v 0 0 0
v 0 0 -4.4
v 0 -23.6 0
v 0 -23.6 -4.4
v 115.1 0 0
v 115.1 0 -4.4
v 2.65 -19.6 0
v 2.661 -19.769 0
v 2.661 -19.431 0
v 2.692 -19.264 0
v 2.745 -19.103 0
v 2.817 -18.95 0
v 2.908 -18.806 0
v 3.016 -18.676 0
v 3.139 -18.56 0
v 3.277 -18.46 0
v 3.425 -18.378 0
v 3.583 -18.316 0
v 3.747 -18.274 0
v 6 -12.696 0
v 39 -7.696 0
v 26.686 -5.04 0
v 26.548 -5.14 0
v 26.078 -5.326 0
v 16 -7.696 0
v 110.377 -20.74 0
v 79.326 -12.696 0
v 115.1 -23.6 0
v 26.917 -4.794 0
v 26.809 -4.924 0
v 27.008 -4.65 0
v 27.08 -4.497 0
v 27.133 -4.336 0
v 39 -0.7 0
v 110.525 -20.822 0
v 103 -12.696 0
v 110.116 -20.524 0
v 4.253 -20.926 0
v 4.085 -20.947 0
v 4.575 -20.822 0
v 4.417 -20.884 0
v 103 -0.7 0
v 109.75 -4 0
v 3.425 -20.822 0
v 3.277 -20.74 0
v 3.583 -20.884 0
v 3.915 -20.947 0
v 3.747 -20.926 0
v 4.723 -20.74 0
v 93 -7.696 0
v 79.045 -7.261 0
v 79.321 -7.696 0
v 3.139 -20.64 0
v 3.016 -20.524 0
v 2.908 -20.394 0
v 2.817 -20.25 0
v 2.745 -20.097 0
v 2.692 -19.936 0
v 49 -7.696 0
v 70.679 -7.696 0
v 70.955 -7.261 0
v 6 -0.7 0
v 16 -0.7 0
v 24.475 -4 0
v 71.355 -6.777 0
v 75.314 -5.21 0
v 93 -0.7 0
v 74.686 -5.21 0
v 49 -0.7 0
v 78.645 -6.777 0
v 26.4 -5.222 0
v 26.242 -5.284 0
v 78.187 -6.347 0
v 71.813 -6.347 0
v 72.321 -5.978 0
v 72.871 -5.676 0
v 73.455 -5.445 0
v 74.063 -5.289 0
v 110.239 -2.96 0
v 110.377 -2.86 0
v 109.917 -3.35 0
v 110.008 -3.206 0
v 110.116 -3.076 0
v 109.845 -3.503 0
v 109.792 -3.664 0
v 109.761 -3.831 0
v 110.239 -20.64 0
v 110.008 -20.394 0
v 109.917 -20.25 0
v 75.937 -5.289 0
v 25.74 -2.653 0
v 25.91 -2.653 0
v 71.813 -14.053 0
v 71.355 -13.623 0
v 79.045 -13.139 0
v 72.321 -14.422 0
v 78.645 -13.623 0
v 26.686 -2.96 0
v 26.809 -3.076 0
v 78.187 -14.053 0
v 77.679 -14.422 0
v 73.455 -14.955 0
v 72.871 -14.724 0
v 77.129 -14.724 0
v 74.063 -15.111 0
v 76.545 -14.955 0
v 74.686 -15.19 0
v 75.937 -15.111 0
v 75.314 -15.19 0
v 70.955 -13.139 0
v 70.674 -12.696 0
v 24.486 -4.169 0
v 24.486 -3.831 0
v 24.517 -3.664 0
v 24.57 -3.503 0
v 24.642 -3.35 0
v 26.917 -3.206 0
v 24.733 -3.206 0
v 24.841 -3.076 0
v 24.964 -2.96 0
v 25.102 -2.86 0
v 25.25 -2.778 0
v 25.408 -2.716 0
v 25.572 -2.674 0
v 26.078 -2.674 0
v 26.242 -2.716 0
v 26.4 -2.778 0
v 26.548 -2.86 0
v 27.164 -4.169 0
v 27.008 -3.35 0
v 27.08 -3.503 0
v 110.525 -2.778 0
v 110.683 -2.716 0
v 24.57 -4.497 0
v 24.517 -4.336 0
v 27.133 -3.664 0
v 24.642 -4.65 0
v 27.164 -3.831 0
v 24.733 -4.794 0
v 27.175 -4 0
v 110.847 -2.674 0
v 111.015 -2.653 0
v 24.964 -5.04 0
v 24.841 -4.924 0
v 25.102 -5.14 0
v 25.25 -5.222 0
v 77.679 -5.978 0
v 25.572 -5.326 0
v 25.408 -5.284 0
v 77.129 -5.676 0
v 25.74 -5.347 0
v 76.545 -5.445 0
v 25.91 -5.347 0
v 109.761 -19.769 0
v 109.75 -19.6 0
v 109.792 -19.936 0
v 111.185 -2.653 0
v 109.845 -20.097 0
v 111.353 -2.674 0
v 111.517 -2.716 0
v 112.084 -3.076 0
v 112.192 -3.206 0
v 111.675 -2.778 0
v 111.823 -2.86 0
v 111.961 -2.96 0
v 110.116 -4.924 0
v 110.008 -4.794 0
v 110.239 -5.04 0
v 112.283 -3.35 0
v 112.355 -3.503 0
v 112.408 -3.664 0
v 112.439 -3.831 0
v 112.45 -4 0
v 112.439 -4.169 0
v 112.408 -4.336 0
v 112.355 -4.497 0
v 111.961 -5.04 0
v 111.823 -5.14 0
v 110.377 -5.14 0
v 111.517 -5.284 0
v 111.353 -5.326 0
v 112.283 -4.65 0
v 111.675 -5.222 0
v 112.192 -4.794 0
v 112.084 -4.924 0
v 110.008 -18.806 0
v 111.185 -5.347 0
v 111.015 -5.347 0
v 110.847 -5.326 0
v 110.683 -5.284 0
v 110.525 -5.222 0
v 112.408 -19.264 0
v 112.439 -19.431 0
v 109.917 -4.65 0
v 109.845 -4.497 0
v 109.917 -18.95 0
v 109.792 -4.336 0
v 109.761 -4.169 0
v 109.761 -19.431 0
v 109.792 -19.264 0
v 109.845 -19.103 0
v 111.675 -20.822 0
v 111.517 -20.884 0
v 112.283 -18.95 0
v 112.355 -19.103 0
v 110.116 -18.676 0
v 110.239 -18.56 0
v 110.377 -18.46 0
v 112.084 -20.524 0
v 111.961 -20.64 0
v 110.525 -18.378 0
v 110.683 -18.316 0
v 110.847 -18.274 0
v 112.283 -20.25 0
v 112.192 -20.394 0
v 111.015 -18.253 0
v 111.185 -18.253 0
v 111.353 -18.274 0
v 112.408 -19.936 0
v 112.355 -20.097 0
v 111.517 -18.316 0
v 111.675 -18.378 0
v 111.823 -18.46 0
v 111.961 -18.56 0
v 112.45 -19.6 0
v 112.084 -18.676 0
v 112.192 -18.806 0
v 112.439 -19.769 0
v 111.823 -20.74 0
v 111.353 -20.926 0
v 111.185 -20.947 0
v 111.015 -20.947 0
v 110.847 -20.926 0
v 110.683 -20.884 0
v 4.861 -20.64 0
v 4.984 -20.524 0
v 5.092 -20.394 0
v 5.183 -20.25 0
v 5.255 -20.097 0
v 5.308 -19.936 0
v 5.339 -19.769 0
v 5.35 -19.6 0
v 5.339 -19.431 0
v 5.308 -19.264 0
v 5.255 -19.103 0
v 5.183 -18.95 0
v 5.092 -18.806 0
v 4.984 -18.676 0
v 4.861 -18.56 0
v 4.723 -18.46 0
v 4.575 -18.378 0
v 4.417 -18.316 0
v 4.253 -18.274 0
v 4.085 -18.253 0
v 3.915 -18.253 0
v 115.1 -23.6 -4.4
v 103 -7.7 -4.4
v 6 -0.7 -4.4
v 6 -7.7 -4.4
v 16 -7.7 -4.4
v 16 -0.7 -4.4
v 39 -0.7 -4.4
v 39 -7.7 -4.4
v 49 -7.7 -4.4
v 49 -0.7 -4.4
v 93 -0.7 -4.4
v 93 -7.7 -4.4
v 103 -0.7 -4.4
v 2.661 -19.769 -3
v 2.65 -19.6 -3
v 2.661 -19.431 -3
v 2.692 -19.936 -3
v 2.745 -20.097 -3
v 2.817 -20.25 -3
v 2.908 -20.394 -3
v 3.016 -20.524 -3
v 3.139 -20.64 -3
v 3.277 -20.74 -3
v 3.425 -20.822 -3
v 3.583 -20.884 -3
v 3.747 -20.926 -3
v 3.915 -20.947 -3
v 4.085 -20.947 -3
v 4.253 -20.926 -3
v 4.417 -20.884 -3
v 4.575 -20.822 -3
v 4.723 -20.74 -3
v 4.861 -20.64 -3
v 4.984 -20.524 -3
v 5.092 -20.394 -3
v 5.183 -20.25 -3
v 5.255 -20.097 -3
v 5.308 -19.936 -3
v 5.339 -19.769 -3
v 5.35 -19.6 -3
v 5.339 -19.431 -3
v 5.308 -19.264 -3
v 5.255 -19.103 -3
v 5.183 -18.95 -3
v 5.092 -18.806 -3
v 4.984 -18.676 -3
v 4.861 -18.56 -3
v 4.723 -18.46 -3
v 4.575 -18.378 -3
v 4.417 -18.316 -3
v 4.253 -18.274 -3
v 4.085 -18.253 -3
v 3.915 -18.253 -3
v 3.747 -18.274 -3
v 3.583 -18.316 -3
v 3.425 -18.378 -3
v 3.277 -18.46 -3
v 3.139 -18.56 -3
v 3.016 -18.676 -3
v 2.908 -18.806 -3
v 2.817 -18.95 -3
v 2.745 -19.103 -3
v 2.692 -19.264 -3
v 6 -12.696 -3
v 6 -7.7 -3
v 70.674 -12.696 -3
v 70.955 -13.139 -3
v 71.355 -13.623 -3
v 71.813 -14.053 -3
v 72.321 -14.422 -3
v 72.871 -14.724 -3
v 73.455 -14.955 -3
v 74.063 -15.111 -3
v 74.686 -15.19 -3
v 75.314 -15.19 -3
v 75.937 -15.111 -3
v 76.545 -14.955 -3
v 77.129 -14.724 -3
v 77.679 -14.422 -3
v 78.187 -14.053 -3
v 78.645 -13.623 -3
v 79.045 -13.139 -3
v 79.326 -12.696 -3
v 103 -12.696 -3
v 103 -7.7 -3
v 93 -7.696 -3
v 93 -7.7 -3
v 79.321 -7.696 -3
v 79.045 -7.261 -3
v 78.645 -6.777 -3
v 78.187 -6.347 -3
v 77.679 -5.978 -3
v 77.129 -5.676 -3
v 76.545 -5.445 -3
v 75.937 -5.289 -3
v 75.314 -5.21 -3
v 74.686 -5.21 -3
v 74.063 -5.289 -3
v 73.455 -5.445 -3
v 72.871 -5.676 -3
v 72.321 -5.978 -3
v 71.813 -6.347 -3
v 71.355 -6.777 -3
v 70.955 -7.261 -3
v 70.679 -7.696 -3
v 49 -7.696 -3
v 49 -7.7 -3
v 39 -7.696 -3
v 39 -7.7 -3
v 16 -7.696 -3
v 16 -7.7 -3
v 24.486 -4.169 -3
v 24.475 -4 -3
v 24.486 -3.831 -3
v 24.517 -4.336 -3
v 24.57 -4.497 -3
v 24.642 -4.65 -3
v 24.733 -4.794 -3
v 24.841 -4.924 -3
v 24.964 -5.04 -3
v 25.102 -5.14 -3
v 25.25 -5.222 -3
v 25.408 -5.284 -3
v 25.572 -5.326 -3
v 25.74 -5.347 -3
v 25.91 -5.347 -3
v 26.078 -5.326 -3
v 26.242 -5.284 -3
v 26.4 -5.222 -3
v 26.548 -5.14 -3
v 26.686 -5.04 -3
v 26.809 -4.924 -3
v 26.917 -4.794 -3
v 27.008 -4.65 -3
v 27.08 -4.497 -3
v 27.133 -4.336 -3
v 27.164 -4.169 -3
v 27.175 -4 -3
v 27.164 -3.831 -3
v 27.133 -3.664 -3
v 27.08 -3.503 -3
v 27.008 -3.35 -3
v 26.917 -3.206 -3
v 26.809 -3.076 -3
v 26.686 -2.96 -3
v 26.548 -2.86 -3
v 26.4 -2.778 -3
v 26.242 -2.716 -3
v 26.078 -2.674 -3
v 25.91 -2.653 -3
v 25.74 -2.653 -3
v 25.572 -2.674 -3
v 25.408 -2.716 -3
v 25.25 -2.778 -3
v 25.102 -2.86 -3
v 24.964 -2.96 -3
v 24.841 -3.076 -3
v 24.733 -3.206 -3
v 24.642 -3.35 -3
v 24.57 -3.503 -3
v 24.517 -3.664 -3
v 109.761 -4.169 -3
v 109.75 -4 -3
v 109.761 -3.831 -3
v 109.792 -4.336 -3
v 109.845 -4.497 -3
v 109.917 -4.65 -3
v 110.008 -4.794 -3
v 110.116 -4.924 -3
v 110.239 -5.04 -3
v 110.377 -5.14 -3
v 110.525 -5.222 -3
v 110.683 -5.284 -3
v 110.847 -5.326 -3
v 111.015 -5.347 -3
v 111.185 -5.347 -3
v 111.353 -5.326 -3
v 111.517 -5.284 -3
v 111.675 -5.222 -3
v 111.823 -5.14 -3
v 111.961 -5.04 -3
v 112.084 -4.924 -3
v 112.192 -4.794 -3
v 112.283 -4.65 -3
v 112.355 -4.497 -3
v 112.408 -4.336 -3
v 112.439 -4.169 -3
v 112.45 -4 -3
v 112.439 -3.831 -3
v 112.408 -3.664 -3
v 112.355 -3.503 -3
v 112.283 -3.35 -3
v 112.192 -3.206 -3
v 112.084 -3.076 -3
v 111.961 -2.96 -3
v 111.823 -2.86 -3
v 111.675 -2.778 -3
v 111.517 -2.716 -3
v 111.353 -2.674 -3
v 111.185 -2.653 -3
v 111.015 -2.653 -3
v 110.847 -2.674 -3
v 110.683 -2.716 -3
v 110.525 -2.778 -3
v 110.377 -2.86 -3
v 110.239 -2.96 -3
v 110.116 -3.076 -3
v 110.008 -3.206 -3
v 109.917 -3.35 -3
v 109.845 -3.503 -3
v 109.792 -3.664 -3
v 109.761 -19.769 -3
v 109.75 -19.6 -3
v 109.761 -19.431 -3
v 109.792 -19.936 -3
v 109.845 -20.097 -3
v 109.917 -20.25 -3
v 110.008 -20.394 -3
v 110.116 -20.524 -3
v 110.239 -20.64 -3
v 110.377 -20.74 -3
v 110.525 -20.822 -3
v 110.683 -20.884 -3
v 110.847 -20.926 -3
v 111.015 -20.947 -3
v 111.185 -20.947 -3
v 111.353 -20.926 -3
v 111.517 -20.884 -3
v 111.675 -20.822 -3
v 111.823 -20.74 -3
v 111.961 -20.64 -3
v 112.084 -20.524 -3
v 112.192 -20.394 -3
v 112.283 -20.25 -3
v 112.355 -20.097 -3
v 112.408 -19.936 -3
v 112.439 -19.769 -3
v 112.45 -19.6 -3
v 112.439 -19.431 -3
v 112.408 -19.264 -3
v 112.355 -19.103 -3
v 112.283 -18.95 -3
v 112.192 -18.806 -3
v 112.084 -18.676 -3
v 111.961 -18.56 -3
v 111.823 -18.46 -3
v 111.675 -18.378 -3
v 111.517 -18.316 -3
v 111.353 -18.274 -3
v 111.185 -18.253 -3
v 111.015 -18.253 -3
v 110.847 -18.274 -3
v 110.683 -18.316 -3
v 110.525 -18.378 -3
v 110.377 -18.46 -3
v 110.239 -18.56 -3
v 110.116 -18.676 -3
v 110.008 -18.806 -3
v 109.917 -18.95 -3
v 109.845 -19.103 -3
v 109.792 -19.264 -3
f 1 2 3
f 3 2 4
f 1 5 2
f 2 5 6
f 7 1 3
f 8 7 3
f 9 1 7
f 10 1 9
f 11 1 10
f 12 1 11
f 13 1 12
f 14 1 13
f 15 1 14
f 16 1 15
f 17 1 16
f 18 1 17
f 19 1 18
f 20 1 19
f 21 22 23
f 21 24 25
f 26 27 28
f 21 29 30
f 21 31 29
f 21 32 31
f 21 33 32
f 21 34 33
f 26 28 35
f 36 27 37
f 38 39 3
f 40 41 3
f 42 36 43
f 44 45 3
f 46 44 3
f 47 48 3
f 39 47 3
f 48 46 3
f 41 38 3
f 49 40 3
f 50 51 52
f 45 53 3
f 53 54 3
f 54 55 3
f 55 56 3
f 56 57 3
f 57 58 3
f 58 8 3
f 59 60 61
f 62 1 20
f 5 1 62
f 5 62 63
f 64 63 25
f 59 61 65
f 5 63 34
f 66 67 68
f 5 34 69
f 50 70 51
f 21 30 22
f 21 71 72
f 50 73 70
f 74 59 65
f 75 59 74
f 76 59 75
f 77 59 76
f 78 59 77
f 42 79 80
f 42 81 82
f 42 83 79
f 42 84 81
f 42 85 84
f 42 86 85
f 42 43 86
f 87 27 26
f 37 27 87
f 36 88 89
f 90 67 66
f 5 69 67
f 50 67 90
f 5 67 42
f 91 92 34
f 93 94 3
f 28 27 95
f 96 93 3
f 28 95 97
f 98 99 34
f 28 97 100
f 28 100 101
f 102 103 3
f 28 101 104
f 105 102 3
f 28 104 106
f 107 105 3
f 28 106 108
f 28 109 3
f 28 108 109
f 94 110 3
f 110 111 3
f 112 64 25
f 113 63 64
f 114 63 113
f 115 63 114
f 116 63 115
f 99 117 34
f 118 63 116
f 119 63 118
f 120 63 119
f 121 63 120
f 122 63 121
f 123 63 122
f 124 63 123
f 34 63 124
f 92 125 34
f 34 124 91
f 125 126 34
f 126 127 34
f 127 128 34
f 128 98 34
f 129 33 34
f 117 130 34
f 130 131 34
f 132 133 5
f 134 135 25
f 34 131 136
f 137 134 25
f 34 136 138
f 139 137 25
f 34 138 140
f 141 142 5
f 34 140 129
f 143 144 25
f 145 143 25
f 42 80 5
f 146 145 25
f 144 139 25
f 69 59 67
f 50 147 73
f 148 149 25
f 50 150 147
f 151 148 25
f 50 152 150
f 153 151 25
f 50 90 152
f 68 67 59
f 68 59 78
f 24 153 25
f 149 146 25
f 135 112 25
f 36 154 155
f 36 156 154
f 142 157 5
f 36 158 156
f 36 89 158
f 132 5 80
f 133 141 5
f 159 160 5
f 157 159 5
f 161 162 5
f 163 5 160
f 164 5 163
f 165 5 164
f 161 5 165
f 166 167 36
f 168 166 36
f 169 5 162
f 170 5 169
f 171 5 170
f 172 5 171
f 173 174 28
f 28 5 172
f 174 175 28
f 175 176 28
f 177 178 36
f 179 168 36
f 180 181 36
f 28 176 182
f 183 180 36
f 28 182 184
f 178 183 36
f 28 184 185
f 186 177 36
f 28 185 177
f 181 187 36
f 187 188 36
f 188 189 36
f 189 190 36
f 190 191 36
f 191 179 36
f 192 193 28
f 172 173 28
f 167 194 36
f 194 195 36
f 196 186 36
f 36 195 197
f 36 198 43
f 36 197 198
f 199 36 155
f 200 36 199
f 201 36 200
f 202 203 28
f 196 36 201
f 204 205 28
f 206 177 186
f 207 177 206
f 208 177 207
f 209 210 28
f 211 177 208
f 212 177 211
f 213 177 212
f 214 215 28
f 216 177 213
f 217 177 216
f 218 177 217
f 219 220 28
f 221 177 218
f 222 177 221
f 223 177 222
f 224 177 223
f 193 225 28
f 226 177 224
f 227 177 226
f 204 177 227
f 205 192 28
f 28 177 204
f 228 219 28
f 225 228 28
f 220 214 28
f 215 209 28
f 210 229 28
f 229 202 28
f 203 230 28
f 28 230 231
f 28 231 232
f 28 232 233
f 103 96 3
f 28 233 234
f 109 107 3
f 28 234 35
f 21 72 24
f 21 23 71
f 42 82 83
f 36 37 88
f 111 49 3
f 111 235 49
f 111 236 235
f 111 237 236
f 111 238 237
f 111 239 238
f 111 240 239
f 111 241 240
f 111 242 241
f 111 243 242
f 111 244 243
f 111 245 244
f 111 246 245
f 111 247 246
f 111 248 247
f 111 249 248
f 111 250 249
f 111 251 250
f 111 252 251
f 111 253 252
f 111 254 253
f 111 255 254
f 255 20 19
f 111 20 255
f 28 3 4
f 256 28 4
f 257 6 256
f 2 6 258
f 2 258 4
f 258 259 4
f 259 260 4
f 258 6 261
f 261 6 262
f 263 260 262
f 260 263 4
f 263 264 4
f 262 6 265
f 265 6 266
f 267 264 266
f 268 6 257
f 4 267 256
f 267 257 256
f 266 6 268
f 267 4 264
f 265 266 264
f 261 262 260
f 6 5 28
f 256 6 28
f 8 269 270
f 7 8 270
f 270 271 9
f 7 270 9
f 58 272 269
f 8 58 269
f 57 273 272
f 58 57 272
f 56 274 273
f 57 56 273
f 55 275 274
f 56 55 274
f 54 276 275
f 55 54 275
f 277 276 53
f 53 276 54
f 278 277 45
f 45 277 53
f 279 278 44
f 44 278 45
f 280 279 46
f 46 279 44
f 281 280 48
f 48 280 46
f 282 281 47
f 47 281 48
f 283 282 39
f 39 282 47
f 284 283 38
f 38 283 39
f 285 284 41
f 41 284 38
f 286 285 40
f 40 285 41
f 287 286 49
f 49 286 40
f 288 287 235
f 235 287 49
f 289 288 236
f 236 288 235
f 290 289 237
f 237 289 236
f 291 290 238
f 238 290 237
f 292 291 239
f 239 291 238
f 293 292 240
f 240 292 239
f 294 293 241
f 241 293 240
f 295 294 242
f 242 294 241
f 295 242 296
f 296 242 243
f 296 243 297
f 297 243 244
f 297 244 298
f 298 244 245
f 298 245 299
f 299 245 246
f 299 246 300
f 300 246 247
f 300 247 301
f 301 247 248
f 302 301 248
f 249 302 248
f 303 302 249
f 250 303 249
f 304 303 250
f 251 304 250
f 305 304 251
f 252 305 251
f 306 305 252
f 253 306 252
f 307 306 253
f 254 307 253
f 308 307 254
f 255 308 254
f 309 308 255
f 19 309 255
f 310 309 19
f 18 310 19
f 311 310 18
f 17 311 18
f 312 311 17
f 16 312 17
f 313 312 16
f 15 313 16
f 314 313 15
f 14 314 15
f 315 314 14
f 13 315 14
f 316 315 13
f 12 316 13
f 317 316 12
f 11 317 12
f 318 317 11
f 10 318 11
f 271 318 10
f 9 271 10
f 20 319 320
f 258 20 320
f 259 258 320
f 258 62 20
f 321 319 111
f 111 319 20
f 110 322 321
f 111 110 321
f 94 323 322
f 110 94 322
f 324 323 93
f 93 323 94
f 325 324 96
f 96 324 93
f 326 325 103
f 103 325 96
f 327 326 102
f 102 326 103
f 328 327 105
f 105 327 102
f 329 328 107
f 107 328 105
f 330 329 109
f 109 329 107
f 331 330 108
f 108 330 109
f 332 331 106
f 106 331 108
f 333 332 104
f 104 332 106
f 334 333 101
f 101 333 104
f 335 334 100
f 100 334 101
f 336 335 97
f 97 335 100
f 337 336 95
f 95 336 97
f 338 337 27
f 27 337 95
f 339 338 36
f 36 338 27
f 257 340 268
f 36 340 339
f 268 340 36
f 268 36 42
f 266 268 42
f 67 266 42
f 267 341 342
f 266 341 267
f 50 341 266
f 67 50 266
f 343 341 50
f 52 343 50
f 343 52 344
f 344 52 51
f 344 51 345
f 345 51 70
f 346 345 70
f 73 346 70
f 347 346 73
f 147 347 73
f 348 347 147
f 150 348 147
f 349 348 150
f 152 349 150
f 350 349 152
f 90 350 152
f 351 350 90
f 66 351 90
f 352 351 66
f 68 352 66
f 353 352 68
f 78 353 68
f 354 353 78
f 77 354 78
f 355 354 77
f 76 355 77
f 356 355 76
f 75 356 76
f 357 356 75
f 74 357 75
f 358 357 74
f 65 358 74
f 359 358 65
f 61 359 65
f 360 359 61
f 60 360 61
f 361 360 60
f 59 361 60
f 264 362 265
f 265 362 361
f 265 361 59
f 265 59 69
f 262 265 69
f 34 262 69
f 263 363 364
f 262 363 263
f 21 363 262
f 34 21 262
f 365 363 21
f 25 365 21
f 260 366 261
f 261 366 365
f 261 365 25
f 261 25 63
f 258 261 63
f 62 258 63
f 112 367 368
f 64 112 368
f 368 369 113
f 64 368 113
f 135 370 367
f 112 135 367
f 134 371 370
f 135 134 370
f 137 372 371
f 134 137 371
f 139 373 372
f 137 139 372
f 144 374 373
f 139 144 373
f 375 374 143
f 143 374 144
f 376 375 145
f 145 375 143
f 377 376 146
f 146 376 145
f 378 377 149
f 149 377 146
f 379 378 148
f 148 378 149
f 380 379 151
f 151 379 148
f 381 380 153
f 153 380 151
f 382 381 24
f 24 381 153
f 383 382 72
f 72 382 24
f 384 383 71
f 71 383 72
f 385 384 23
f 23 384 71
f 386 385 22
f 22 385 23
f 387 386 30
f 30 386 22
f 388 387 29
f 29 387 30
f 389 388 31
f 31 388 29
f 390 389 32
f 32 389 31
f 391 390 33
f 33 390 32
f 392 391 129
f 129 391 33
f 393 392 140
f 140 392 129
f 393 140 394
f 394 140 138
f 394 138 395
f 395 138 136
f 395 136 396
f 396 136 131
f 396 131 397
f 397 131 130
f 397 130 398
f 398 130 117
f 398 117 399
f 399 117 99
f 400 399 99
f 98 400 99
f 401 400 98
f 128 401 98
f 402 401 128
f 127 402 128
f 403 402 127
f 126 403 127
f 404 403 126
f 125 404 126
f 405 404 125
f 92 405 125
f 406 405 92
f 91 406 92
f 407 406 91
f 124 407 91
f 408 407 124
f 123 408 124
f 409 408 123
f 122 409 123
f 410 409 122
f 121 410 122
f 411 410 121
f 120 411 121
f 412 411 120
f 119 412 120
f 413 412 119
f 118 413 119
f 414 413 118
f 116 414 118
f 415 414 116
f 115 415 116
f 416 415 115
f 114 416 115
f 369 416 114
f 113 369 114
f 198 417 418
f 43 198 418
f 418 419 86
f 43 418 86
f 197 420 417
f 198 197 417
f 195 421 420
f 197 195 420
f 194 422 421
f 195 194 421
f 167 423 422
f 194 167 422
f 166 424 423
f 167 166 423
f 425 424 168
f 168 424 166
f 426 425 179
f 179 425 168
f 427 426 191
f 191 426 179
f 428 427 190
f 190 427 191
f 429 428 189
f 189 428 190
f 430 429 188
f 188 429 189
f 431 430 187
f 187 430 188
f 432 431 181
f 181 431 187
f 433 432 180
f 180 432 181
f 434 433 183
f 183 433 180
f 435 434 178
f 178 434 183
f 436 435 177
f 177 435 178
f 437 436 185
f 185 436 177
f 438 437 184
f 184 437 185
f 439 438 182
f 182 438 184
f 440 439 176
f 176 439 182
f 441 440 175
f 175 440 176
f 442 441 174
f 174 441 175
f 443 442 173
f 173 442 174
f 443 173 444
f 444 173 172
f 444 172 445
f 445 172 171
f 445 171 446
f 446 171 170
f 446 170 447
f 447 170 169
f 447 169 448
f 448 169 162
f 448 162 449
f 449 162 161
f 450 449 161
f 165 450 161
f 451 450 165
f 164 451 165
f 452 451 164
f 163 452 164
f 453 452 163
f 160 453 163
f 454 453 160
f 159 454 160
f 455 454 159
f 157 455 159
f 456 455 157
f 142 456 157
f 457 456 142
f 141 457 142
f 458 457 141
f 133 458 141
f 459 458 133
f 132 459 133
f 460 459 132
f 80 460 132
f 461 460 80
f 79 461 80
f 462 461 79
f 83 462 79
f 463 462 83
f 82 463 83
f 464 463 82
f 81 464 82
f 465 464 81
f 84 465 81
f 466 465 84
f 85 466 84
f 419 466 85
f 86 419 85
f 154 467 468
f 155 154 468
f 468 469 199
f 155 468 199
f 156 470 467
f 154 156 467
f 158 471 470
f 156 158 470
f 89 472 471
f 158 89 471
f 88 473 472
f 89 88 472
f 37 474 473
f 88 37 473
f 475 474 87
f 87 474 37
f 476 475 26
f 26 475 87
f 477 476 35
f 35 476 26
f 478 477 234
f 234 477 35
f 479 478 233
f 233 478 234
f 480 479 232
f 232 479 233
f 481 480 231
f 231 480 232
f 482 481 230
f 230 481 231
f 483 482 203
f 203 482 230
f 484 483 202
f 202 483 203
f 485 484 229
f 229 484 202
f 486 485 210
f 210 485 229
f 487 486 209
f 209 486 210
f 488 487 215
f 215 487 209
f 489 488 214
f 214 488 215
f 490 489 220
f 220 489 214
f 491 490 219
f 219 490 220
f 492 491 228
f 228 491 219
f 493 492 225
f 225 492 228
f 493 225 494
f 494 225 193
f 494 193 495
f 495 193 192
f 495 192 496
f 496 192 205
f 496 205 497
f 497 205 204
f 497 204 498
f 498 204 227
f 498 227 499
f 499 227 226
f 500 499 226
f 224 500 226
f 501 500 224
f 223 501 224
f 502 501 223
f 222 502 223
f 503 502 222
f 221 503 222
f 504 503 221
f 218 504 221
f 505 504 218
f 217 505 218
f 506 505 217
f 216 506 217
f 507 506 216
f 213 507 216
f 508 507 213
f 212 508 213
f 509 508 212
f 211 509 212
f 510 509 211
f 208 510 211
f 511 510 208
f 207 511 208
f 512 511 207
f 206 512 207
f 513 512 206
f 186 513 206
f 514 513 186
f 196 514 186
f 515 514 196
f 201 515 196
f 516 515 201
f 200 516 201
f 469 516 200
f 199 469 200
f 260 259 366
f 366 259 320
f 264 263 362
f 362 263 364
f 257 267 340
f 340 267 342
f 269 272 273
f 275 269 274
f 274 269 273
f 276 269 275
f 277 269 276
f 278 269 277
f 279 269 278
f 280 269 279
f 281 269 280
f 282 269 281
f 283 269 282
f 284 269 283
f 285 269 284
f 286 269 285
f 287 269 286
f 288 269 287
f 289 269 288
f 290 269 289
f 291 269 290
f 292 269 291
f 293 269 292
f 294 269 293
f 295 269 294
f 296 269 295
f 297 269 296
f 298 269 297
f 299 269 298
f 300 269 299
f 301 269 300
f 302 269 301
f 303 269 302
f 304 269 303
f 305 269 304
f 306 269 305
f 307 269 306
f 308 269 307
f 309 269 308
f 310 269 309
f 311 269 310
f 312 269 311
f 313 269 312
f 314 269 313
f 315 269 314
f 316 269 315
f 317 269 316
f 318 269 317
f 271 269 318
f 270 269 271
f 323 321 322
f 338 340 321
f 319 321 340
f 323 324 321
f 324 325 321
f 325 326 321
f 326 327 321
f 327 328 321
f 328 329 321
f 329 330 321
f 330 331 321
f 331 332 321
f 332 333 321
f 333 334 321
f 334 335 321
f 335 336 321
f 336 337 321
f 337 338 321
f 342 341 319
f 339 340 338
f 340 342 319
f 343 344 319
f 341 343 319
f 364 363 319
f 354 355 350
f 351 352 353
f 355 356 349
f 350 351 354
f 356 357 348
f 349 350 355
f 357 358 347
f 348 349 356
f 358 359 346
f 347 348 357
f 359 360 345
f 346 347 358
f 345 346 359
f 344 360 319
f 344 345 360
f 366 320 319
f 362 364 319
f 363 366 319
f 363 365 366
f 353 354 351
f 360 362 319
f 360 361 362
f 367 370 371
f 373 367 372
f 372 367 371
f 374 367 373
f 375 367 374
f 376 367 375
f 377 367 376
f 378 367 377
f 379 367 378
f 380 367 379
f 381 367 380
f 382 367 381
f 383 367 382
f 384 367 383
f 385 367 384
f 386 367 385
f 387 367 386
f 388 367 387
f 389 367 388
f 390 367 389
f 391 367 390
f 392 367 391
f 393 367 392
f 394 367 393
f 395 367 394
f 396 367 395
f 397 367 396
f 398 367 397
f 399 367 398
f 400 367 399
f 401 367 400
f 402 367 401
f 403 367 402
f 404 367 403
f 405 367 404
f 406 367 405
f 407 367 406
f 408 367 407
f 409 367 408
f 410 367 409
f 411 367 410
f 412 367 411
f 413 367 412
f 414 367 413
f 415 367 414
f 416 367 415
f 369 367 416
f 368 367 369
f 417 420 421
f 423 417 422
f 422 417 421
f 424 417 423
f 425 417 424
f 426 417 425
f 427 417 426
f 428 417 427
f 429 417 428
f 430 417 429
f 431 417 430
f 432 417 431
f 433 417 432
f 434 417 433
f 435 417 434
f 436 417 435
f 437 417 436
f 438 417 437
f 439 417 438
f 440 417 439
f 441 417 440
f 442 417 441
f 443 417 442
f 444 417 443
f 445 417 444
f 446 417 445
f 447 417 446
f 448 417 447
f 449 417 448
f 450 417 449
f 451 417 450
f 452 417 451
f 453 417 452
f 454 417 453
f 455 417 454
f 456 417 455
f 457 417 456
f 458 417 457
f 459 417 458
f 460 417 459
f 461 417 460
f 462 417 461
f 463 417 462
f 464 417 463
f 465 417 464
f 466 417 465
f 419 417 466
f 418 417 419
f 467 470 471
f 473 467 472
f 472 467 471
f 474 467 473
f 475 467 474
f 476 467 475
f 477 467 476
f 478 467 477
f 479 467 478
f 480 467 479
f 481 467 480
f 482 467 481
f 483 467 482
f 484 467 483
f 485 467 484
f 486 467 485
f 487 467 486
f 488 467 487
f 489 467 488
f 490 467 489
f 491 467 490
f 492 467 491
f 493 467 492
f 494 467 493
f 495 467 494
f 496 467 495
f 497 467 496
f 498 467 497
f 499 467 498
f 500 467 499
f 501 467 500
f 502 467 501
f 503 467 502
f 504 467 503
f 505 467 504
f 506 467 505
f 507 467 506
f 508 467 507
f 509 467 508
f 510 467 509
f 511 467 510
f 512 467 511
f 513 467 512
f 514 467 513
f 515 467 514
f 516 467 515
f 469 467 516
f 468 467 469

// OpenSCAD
$fn = 50;

hia = 30;
bia = 17.5;
lia = 109;

sp = 2;

d = 0.7;

h = 3;
b = bia + d + 2*sp;
l = lia + d + 2*sp;


ba = 7;
la = 10;

a1 = 4 + sp;
a2 = a1 + 33;
a3 = a2 + 54;

ro = 5;
ho = h-d;

lo = 75;

bk = 5;

bo = ba+bk/2+d;

rs = 2.7/2;

rotate([180,0,0])
difference(){
	cube([l+2*d,b+2*d,h+2*d]);
	translate([a1,d,-0.5*d]) cube([la,ba,2*h+3*d]);
	translate([a2,d,-0.5*d]) cube([la,ba,2*h+3*d]);
	translate([a3,d,-0.5*d]) cube([la,ba,2*h+3*d]);
	translate([lo,bo,-0.5*d]) cylinder(r = ro, h = ho+1.5*d);
	translate([a1,ba+d*0.995,-0.5*d]) cube([a3-a1+la,bk,ho+1.5*d]);
	translate([4,b+2*d-4,-0.5*d]) cylinder(r = rs, h = ho+1.5*d);
	translate([l+2*d-4,b+2*d-4,-0.5*d]) cylinder(r = rs, h = ho+1.5*d);
	translate([l+2*d-4,+4,-0.5*d]) cylinder(r = rs, h = ho+1.5*d);
	translate([l/4+2*d-4,+4,-0.5*d]) cylinder(r = rs, h = ho+1.5*d);

}
